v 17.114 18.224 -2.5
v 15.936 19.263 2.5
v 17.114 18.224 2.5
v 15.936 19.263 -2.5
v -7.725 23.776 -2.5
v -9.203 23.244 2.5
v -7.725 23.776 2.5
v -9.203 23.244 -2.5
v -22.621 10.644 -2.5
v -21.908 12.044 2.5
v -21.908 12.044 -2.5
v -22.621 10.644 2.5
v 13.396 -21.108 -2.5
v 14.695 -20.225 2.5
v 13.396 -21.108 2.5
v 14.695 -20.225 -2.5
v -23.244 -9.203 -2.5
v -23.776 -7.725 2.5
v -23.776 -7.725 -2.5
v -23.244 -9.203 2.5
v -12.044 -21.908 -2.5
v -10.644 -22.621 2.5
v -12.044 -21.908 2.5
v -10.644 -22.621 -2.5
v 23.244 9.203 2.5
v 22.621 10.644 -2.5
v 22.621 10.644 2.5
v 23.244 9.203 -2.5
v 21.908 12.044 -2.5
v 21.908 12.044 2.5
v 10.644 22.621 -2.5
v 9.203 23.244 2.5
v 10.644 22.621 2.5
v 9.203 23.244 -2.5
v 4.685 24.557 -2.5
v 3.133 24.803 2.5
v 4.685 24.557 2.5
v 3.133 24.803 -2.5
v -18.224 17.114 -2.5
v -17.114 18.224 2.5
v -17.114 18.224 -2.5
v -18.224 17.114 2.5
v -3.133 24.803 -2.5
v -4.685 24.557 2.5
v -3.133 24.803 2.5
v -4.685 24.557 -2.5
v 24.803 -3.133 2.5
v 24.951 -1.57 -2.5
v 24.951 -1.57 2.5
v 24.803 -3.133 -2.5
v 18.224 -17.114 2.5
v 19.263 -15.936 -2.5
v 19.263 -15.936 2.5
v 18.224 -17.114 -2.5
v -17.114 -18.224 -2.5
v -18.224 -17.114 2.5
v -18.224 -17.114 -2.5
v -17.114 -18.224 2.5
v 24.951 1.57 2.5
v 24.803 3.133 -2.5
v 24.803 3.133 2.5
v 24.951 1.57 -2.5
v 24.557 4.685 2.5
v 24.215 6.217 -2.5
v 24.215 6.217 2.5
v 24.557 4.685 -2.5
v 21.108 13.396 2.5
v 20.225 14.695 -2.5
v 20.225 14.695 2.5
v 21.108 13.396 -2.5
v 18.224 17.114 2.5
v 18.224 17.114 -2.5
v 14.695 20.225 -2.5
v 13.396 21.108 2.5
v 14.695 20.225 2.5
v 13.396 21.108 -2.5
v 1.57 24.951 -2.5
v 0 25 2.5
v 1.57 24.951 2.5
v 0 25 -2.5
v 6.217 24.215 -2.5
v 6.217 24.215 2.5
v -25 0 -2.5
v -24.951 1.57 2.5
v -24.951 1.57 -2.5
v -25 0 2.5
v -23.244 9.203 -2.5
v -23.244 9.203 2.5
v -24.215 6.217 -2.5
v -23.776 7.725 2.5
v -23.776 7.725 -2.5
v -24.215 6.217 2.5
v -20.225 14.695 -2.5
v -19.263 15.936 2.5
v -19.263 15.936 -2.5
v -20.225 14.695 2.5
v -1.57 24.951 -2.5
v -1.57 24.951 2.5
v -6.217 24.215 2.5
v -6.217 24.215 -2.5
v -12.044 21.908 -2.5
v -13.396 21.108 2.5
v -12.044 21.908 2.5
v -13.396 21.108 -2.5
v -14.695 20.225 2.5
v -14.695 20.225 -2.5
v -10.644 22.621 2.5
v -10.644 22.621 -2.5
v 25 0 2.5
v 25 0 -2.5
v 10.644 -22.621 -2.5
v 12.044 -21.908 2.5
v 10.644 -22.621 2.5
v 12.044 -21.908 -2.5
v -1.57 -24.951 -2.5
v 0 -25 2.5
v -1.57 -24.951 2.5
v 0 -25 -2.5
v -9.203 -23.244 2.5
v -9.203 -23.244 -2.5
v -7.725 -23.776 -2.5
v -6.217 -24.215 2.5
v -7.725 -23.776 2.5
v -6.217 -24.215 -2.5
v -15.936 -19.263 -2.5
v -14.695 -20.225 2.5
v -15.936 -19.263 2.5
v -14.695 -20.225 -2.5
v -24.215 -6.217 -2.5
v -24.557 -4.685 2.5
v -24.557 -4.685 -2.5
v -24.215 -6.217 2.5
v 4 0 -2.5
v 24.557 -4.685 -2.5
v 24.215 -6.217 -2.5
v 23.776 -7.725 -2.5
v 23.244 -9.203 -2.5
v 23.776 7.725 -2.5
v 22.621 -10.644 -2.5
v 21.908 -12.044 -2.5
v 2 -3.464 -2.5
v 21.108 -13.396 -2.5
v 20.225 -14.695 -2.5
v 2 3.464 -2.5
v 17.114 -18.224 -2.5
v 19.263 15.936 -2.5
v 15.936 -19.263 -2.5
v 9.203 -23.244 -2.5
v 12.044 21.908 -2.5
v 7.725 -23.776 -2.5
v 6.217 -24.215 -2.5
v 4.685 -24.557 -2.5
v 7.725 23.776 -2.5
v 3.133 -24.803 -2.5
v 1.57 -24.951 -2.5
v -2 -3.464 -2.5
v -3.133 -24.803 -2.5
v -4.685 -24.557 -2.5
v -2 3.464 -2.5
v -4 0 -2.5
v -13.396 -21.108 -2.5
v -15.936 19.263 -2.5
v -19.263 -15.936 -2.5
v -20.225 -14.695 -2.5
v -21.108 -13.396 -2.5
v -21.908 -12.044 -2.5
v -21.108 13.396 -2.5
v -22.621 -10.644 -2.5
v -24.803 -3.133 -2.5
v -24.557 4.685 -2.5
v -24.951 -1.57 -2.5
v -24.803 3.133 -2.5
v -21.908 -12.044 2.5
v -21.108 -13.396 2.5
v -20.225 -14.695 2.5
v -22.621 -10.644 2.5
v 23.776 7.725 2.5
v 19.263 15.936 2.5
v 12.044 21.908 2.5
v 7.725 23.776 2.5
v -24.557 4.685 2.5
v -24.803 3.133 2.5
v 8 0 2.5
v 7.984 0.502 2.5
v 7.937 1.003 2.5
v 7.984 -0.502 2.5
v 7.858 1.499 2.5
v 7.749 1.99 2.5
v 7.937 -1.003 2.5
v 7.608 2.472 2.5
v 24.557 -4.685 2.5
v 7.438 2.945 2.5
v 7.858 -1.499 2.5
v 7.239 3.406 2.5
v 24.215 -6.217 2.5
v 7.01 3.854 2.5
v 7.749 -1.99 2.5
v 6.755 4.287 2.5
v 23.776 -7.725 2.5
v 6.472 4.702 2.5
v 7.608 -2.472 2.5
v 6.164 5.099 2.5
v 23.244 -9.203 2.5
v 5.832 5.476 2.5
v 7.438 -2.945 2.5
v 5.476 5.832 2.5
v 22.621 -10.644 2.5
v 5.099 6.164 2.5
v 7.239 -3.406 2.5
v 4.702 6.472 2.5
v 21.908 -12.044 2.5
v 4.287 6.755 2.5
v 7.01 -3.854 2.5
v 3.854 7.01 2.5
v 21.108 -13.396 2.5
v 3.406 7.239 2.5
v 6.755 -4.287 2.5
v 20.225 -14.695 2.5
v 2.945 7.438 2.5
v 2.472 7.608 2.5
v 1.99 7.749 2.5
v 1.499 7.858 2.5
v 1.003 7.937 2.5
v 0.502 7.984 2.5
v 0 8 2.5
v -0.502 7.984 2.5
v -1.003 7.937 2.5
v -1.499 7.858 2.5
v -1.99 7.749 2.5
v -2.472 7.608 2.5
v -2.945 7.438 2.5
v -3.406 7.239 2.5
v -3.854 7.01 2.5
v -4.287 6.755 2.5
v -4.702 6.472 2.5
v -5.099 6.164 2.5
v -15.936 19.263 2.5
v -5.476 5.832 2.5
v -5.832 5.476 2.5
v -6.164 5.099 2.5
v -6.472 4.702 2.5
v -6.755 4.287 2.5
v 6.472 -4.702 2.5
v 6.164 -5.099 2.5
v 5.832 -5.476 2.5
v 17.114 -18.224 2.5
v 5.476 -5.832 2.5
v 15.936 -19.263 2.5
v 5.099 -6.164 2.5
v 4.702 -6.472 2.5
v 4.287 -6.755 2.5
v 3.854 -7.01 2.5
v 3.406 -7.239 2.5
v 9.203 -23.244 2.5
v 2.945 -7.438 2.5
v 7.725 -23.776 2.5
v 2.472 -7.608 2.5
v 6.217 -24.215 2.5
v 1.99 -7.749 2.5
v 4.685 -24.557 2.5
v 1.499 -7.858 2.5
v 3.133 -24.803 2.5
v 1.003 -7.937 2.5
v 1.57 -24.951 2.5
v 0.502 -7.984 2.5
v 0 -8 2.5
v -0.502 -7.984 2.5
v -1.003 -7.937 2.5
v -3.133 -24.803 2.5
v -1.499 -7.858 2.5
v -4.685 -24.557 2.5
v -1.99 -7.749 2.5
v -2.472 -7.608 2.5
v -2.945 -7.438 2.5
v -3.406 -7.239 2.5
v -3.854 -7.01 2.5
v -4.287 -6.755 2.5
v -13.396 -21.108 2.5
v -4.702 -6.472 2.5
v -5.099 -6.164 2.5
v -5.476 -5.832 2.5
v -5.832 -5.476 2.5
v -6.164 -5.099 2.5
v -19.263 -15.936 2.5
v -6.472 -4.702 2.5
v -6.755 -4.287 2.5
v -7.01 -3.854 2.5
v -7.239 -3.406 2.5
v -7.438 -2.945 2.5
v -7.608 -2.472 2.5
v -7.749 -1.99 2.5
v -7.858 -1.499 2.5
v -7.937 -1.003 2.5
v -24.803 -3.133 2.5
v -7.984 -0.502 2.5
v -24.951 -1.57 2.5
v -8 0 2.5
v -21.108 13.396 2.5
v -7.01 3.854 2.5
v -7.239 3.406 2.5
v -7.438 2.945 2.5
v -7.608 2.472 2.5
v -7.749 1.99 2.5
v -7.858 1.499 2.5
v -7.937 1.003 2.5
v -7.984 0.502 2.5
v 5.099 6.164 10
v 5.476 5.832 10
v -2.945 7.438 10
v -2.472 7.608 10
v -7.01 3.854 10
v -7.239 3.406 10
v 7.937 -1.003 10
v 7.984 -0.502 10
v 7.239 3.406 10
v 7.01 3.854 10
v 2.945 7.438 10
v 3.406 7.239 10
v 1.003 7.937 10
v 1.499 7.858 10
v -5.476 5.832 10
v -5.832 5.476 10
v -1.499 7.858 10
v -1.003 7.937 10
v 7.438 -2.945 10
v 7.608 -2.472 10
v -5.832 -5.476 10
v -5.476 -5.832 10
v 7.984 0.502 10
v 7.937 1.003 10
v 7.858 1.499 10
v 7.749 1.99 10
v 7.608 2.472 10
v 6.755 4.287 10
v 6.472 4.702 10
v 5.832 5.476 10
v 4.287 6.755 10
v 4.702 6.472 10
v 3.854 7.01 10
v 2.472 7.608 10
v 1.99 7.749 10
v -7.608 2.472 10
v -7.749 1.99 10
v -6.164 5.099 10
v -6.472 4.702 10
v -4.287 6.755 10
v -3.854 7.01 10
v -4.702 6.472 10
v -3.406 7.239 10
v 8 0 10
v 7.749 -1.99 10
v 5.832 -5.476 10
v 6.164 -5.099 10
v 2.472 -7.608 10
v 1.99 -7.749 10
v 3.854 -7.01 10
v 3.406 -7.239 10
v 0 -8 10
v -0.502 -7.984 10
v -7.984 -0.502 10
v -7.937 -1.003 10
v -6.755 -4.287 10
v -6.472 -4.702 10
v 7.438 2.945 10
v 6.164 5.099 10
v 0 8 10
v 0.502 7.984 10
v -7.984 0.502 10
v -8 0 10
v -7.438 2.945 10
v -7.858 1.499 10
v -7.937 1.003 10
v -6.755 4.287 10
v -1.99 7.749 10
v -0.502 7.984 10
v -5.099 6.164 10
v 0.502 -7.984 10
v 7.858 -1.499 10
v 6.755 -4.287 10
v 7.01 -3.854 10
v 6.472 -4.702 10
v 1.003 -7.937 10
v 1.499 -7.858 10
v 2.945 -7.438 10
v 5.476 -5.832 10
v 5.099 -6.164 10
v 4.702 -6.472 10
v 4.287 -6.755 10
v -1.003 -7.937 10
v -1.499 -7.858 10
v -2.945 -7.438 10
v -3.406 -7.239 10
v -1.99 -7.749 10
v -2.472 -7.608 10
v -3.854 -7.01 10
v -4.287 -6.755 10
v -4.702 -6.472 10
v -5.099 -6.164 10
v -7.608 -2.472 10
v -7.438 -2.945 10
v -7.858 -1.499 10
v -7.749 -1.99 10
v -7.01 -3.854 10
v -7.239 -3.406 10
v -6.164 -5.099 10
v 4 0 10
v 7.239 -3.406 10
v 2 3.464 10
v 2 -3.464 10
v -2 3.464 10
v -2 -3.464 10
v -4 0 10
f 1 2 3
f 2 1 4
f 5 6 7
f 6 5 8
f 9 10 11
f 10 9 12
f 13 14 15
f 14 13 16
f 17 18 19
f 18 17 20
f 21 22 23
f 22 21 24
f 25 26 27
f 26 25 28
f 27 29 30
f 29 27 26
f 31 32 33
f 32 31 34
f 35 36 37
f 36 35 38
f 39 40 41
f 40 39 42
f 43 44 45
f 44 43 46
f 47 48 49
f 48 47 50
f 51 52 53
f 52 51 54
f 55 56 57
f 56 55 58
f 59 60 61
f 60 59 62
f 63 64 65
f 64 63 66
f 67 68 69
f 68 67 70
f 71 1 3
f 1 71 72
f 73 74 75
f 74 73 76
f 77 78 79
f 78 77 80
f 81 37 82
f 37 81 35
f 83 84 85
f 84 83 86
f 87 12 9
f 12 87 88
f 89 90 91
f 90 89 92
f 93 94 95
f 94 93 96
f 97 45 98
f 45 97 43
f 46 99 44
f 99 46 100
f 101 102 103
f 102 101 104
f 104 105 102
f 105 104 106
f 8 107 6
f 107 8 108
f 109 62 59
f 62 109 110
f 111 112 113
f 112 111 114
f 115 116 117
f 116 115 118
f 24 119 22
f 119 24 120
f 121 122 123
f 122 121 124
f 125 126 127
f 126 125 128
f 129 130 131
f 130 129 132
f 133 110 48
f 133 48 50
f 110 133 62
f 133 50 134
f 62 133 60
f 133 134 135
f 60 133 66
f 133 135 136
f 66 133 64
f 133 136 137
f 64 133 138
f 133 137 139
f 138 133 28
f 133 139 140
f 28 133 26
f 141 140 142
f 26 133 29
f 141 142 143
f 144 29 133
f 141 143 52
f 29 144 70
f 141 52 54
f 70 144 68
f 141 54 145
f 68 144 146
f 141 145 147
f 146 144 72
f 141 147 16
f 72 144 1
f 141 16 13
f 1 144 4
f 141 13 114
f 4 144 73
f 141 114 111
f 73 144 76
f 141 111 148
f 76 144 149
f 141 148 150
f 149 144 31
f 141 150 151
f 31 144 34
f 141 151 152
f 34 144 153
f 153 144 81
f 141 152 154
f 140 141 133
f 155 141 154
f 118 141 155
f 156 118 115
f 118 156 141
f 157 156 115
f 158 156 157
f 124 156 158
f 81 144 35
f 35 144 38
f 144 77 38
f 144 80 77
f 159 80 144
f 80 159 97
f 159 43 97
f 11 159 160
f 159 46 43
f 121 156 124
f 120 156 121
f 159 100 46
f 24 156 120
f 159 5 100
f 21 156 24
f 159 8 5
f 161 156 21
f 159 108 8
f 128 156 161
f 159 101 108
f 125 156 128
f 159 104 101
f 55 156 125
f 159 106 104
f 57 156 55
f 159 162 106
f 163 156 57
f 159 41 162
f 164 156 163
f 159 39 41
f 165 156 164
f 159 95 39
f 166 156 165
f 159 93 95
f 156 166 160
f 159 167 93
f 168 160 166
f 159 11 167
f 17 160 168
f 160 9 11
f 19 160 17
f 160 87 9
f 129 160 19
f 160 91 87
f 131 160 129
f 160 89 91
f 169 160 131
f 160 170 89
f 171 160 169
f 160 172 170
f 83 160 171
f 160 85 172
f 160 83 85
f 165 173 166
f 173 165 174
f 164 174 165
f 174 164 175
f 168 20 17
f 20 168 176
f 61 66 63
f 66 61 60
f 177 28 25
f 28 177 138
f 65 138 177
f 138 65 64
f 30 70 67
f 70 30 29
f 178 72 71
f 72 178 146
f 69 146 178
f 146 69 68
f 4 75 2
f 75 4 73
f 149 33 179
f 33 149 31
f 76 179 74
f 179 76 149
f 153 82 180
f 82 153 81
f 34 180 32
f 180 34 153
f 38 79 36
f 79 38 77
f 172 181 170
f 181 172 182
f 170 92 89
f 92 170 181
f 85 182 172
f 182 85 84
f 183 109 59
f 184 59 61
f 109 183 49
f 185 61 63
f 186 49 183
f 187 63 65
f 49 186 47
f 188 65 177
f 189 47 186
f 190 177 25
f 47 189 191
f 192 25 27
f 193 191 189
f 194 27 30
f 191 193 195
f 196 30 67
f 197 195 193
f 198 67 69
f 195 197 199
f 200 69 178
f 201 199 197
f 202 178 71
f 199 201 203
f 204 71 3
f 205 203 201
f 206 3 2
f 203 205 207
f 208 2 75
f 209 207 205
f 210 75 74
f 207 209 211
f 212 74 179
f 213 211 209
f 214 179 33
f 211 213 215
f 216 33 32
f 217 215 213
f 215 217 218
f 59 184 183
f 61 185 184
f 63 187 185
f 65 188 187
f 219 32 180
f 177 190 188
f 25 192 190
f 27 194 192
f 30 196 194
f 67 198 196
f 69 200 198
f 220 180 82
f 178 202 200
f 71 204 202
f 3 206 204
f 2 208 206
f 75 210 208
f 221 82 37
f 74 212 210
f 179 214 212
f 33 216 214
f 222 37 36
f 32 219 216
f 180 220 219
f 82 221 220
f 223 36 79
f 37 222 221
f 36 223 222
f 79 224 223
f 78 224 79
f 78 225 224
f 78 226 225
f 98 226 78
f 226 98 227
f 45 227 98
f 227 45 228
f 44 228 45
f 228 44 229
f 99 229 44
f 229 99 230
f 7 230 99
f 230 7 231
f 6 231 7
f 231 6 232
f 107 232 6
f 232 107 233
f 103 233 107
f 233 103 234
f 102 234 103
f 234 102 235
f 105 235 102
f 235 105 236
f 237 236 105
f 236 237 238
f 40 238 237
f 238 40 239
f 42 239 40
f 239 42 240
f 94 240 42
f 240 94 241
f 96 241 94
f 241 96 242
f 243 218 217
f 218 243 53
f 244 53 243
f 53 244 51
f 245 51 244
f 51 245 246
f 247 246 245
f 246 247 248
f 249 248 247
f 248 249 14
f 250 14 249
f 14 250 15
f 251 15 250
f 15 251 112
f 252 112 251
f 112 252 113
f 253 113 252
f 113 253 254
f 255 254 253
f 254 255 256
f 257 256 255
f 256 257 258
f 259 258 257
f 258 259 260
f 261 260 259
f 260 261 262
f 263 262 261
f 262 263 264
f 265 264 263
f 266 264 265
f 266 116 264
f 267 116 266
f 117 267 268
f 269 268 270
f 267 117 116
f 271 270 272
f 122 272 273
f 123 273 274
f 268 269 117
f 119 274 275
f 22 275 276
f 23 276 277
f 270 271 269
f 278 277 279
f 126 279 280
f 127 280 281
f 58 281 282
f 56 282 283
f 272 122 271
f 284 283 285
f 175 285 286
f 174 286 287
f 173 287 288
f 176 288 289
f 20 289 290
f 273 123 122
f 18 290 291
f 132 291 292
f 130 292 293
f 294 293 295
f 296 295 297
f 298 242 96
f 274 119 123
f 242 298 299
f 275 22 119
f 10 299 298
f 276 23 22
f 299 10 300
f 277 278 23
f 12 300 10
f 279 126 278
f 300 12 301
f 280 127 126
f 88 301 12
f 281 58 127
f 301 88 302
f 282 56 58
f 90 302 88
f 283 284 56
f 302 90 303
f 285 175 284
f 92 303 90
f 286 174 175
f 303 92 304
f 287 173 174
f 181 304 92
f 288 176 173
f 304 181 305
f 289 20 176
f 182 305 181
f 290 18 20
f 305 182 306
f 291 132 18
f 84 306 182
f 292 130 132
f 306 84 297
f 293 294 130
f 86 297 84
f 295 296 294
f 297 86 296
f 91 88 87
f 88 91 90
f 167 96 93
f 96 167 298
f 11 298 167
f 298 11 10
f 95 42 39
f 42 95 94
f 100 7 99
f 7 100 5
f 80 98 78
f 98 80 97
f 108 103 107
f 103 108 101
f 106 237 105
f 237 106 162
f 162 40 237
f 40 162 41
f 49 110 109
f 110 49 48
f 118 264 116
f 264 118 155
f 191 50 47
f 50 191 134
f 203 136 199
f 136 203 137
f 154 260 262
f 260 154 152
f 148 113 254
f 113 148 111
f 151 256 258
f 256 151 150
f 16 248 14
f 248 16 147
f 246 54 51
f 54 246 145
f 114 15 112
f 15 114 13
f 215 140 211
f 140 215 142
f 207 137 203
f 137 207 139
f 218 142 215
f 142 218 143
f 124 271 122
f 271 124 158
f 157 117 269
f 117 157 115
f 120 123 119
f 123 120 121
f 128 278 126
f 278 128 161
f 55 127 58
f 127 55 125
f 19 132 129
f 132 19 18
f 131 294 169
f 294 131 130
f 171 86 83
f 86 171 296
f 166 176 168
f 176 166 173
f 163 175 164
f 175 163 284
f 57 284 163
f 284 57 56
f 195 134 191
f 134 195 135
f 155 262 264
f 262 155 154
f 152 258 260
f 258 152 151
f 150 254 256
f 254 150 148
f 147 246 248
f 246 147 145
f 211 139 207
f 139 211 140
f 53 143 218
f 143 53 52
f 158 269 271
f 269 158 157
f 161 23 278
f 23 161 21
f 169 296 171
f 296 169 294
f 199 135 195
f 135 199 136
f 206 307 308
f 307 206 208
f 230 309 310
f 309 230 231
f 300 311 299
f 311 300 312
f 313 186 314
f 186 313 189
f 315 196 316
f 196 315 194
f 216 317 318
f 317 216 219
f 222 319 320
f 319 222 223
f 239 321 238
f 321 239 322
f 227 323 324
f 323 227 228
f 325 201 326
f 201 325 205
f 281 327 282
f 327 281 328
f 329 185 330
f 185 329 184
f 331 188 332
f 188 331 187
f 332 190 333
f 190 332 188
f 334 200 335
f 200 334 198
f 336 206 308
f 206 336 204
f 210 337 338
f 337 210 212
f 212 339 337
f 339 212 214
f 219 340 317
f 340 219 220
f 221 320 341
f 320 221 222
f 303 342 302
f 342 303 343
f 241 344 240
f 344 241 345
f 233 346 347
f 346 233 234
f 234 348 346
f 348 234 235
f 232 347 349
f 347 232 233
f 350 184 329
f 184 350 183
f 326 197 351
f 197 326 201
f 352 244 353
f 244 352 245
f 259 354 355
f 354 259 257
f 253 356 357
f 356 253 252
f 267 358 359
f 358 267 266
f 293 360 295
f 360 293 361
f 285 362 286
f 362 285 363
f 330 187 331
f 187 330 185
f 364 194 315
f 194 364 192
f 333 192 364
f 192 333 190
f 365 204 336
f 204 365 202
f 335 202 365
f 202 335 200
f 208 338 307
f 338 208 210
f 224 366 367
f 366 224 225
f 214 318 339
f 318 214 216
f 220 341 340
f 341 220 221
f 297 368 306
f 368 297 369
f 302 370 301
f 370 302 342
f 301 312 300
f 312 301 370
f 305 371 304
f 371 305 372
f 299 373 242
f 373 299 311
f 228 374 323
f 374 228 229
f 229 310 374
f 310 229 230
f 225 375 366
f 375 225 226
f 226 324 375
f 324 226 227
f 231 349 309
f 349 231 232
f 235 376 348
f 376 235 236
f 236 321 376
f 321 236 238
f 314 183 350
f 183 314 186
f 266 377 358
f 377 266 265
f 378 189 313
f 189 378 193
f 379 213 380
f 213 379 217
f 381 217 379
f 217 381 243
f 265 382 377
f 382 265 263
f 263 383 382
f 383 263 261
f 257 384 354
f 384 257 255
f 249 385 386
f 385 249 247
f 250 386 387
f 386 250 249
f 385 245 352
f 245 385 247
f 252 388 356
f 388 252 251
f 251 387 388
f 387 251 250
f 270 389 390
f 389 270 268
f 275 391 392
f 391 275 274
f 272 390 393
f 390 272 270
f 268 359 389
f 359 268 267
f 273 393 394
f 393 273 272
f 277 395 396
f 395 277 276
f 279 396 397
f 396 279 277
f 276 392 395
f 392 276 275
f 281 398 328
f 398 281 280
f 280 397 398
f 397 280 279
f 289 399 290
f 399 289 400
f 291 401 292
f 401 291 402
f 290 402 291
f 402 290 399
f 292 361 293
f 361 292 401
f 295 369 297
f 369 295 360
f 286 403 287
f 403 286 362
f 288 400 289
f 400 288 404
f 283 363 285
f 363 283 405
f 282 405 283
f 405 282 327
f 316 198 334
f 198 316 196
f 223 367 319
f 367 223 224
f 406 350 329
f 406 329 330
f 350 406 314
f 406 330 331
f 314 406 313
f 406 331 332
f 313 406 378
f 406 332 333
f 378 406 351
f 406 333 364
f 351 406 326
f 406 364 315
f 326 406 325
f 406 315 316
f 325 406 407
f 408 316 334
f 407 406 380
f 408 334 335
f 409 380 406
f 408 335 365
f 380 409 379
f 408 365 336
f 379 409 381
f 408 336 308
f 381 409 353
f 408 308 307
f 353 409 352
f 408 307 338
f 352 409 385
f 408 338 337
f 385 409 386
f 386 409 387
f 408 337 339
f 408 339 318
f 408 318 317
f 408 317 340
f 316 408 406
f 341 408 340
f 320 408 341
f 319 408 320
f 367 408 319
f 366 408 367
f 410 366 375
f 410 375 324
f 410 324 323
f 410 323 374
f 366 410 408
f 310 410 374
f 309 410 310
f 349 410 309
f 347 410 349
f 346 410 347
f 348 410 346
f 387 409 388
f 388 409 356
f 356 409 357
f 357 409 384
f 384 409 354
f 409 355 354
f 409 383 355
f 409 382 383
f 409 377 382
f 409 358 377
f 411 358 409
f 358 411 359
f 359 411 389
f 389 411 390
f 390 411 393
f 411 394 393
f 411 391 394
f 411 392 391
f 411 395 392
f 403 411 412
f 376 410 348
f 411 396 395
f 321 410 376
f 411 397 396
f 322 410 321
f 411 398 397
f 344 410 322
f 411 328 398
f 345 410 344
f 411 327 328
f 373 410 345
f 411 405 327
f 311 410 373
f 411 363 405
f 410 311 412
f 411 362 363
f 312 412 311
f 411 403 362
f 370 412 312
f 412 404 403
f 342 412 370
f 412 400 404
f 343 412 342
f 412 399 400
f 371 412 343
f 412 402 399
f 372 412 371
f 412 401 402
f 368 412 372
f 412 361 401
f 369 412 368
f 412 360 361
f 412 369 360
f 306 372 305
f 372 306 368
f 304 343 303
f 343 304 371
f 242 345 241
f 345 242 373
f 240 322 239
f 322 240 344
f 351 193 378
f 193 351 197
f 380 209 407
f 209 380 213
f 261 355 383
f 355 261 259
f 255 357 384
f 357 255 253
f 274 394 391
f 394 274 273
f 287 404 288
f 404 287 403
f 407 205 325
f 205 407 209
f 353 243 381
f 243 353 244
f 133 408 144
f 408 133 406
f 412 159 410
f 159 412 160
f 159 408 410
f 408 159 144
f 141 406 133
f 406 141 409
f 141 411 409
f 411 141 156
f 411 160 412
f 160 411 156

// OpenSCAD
// vamos a hacer una rueda con eje hexagonal

difference()
{
    union()
    {
        cylinder(d=50,h=5,center=true,$fn=100);
        cylinder(d=16,h=10,$fn=100);
    }
    cylinder(d=8,h=40,center=true,$fn=6);
}
